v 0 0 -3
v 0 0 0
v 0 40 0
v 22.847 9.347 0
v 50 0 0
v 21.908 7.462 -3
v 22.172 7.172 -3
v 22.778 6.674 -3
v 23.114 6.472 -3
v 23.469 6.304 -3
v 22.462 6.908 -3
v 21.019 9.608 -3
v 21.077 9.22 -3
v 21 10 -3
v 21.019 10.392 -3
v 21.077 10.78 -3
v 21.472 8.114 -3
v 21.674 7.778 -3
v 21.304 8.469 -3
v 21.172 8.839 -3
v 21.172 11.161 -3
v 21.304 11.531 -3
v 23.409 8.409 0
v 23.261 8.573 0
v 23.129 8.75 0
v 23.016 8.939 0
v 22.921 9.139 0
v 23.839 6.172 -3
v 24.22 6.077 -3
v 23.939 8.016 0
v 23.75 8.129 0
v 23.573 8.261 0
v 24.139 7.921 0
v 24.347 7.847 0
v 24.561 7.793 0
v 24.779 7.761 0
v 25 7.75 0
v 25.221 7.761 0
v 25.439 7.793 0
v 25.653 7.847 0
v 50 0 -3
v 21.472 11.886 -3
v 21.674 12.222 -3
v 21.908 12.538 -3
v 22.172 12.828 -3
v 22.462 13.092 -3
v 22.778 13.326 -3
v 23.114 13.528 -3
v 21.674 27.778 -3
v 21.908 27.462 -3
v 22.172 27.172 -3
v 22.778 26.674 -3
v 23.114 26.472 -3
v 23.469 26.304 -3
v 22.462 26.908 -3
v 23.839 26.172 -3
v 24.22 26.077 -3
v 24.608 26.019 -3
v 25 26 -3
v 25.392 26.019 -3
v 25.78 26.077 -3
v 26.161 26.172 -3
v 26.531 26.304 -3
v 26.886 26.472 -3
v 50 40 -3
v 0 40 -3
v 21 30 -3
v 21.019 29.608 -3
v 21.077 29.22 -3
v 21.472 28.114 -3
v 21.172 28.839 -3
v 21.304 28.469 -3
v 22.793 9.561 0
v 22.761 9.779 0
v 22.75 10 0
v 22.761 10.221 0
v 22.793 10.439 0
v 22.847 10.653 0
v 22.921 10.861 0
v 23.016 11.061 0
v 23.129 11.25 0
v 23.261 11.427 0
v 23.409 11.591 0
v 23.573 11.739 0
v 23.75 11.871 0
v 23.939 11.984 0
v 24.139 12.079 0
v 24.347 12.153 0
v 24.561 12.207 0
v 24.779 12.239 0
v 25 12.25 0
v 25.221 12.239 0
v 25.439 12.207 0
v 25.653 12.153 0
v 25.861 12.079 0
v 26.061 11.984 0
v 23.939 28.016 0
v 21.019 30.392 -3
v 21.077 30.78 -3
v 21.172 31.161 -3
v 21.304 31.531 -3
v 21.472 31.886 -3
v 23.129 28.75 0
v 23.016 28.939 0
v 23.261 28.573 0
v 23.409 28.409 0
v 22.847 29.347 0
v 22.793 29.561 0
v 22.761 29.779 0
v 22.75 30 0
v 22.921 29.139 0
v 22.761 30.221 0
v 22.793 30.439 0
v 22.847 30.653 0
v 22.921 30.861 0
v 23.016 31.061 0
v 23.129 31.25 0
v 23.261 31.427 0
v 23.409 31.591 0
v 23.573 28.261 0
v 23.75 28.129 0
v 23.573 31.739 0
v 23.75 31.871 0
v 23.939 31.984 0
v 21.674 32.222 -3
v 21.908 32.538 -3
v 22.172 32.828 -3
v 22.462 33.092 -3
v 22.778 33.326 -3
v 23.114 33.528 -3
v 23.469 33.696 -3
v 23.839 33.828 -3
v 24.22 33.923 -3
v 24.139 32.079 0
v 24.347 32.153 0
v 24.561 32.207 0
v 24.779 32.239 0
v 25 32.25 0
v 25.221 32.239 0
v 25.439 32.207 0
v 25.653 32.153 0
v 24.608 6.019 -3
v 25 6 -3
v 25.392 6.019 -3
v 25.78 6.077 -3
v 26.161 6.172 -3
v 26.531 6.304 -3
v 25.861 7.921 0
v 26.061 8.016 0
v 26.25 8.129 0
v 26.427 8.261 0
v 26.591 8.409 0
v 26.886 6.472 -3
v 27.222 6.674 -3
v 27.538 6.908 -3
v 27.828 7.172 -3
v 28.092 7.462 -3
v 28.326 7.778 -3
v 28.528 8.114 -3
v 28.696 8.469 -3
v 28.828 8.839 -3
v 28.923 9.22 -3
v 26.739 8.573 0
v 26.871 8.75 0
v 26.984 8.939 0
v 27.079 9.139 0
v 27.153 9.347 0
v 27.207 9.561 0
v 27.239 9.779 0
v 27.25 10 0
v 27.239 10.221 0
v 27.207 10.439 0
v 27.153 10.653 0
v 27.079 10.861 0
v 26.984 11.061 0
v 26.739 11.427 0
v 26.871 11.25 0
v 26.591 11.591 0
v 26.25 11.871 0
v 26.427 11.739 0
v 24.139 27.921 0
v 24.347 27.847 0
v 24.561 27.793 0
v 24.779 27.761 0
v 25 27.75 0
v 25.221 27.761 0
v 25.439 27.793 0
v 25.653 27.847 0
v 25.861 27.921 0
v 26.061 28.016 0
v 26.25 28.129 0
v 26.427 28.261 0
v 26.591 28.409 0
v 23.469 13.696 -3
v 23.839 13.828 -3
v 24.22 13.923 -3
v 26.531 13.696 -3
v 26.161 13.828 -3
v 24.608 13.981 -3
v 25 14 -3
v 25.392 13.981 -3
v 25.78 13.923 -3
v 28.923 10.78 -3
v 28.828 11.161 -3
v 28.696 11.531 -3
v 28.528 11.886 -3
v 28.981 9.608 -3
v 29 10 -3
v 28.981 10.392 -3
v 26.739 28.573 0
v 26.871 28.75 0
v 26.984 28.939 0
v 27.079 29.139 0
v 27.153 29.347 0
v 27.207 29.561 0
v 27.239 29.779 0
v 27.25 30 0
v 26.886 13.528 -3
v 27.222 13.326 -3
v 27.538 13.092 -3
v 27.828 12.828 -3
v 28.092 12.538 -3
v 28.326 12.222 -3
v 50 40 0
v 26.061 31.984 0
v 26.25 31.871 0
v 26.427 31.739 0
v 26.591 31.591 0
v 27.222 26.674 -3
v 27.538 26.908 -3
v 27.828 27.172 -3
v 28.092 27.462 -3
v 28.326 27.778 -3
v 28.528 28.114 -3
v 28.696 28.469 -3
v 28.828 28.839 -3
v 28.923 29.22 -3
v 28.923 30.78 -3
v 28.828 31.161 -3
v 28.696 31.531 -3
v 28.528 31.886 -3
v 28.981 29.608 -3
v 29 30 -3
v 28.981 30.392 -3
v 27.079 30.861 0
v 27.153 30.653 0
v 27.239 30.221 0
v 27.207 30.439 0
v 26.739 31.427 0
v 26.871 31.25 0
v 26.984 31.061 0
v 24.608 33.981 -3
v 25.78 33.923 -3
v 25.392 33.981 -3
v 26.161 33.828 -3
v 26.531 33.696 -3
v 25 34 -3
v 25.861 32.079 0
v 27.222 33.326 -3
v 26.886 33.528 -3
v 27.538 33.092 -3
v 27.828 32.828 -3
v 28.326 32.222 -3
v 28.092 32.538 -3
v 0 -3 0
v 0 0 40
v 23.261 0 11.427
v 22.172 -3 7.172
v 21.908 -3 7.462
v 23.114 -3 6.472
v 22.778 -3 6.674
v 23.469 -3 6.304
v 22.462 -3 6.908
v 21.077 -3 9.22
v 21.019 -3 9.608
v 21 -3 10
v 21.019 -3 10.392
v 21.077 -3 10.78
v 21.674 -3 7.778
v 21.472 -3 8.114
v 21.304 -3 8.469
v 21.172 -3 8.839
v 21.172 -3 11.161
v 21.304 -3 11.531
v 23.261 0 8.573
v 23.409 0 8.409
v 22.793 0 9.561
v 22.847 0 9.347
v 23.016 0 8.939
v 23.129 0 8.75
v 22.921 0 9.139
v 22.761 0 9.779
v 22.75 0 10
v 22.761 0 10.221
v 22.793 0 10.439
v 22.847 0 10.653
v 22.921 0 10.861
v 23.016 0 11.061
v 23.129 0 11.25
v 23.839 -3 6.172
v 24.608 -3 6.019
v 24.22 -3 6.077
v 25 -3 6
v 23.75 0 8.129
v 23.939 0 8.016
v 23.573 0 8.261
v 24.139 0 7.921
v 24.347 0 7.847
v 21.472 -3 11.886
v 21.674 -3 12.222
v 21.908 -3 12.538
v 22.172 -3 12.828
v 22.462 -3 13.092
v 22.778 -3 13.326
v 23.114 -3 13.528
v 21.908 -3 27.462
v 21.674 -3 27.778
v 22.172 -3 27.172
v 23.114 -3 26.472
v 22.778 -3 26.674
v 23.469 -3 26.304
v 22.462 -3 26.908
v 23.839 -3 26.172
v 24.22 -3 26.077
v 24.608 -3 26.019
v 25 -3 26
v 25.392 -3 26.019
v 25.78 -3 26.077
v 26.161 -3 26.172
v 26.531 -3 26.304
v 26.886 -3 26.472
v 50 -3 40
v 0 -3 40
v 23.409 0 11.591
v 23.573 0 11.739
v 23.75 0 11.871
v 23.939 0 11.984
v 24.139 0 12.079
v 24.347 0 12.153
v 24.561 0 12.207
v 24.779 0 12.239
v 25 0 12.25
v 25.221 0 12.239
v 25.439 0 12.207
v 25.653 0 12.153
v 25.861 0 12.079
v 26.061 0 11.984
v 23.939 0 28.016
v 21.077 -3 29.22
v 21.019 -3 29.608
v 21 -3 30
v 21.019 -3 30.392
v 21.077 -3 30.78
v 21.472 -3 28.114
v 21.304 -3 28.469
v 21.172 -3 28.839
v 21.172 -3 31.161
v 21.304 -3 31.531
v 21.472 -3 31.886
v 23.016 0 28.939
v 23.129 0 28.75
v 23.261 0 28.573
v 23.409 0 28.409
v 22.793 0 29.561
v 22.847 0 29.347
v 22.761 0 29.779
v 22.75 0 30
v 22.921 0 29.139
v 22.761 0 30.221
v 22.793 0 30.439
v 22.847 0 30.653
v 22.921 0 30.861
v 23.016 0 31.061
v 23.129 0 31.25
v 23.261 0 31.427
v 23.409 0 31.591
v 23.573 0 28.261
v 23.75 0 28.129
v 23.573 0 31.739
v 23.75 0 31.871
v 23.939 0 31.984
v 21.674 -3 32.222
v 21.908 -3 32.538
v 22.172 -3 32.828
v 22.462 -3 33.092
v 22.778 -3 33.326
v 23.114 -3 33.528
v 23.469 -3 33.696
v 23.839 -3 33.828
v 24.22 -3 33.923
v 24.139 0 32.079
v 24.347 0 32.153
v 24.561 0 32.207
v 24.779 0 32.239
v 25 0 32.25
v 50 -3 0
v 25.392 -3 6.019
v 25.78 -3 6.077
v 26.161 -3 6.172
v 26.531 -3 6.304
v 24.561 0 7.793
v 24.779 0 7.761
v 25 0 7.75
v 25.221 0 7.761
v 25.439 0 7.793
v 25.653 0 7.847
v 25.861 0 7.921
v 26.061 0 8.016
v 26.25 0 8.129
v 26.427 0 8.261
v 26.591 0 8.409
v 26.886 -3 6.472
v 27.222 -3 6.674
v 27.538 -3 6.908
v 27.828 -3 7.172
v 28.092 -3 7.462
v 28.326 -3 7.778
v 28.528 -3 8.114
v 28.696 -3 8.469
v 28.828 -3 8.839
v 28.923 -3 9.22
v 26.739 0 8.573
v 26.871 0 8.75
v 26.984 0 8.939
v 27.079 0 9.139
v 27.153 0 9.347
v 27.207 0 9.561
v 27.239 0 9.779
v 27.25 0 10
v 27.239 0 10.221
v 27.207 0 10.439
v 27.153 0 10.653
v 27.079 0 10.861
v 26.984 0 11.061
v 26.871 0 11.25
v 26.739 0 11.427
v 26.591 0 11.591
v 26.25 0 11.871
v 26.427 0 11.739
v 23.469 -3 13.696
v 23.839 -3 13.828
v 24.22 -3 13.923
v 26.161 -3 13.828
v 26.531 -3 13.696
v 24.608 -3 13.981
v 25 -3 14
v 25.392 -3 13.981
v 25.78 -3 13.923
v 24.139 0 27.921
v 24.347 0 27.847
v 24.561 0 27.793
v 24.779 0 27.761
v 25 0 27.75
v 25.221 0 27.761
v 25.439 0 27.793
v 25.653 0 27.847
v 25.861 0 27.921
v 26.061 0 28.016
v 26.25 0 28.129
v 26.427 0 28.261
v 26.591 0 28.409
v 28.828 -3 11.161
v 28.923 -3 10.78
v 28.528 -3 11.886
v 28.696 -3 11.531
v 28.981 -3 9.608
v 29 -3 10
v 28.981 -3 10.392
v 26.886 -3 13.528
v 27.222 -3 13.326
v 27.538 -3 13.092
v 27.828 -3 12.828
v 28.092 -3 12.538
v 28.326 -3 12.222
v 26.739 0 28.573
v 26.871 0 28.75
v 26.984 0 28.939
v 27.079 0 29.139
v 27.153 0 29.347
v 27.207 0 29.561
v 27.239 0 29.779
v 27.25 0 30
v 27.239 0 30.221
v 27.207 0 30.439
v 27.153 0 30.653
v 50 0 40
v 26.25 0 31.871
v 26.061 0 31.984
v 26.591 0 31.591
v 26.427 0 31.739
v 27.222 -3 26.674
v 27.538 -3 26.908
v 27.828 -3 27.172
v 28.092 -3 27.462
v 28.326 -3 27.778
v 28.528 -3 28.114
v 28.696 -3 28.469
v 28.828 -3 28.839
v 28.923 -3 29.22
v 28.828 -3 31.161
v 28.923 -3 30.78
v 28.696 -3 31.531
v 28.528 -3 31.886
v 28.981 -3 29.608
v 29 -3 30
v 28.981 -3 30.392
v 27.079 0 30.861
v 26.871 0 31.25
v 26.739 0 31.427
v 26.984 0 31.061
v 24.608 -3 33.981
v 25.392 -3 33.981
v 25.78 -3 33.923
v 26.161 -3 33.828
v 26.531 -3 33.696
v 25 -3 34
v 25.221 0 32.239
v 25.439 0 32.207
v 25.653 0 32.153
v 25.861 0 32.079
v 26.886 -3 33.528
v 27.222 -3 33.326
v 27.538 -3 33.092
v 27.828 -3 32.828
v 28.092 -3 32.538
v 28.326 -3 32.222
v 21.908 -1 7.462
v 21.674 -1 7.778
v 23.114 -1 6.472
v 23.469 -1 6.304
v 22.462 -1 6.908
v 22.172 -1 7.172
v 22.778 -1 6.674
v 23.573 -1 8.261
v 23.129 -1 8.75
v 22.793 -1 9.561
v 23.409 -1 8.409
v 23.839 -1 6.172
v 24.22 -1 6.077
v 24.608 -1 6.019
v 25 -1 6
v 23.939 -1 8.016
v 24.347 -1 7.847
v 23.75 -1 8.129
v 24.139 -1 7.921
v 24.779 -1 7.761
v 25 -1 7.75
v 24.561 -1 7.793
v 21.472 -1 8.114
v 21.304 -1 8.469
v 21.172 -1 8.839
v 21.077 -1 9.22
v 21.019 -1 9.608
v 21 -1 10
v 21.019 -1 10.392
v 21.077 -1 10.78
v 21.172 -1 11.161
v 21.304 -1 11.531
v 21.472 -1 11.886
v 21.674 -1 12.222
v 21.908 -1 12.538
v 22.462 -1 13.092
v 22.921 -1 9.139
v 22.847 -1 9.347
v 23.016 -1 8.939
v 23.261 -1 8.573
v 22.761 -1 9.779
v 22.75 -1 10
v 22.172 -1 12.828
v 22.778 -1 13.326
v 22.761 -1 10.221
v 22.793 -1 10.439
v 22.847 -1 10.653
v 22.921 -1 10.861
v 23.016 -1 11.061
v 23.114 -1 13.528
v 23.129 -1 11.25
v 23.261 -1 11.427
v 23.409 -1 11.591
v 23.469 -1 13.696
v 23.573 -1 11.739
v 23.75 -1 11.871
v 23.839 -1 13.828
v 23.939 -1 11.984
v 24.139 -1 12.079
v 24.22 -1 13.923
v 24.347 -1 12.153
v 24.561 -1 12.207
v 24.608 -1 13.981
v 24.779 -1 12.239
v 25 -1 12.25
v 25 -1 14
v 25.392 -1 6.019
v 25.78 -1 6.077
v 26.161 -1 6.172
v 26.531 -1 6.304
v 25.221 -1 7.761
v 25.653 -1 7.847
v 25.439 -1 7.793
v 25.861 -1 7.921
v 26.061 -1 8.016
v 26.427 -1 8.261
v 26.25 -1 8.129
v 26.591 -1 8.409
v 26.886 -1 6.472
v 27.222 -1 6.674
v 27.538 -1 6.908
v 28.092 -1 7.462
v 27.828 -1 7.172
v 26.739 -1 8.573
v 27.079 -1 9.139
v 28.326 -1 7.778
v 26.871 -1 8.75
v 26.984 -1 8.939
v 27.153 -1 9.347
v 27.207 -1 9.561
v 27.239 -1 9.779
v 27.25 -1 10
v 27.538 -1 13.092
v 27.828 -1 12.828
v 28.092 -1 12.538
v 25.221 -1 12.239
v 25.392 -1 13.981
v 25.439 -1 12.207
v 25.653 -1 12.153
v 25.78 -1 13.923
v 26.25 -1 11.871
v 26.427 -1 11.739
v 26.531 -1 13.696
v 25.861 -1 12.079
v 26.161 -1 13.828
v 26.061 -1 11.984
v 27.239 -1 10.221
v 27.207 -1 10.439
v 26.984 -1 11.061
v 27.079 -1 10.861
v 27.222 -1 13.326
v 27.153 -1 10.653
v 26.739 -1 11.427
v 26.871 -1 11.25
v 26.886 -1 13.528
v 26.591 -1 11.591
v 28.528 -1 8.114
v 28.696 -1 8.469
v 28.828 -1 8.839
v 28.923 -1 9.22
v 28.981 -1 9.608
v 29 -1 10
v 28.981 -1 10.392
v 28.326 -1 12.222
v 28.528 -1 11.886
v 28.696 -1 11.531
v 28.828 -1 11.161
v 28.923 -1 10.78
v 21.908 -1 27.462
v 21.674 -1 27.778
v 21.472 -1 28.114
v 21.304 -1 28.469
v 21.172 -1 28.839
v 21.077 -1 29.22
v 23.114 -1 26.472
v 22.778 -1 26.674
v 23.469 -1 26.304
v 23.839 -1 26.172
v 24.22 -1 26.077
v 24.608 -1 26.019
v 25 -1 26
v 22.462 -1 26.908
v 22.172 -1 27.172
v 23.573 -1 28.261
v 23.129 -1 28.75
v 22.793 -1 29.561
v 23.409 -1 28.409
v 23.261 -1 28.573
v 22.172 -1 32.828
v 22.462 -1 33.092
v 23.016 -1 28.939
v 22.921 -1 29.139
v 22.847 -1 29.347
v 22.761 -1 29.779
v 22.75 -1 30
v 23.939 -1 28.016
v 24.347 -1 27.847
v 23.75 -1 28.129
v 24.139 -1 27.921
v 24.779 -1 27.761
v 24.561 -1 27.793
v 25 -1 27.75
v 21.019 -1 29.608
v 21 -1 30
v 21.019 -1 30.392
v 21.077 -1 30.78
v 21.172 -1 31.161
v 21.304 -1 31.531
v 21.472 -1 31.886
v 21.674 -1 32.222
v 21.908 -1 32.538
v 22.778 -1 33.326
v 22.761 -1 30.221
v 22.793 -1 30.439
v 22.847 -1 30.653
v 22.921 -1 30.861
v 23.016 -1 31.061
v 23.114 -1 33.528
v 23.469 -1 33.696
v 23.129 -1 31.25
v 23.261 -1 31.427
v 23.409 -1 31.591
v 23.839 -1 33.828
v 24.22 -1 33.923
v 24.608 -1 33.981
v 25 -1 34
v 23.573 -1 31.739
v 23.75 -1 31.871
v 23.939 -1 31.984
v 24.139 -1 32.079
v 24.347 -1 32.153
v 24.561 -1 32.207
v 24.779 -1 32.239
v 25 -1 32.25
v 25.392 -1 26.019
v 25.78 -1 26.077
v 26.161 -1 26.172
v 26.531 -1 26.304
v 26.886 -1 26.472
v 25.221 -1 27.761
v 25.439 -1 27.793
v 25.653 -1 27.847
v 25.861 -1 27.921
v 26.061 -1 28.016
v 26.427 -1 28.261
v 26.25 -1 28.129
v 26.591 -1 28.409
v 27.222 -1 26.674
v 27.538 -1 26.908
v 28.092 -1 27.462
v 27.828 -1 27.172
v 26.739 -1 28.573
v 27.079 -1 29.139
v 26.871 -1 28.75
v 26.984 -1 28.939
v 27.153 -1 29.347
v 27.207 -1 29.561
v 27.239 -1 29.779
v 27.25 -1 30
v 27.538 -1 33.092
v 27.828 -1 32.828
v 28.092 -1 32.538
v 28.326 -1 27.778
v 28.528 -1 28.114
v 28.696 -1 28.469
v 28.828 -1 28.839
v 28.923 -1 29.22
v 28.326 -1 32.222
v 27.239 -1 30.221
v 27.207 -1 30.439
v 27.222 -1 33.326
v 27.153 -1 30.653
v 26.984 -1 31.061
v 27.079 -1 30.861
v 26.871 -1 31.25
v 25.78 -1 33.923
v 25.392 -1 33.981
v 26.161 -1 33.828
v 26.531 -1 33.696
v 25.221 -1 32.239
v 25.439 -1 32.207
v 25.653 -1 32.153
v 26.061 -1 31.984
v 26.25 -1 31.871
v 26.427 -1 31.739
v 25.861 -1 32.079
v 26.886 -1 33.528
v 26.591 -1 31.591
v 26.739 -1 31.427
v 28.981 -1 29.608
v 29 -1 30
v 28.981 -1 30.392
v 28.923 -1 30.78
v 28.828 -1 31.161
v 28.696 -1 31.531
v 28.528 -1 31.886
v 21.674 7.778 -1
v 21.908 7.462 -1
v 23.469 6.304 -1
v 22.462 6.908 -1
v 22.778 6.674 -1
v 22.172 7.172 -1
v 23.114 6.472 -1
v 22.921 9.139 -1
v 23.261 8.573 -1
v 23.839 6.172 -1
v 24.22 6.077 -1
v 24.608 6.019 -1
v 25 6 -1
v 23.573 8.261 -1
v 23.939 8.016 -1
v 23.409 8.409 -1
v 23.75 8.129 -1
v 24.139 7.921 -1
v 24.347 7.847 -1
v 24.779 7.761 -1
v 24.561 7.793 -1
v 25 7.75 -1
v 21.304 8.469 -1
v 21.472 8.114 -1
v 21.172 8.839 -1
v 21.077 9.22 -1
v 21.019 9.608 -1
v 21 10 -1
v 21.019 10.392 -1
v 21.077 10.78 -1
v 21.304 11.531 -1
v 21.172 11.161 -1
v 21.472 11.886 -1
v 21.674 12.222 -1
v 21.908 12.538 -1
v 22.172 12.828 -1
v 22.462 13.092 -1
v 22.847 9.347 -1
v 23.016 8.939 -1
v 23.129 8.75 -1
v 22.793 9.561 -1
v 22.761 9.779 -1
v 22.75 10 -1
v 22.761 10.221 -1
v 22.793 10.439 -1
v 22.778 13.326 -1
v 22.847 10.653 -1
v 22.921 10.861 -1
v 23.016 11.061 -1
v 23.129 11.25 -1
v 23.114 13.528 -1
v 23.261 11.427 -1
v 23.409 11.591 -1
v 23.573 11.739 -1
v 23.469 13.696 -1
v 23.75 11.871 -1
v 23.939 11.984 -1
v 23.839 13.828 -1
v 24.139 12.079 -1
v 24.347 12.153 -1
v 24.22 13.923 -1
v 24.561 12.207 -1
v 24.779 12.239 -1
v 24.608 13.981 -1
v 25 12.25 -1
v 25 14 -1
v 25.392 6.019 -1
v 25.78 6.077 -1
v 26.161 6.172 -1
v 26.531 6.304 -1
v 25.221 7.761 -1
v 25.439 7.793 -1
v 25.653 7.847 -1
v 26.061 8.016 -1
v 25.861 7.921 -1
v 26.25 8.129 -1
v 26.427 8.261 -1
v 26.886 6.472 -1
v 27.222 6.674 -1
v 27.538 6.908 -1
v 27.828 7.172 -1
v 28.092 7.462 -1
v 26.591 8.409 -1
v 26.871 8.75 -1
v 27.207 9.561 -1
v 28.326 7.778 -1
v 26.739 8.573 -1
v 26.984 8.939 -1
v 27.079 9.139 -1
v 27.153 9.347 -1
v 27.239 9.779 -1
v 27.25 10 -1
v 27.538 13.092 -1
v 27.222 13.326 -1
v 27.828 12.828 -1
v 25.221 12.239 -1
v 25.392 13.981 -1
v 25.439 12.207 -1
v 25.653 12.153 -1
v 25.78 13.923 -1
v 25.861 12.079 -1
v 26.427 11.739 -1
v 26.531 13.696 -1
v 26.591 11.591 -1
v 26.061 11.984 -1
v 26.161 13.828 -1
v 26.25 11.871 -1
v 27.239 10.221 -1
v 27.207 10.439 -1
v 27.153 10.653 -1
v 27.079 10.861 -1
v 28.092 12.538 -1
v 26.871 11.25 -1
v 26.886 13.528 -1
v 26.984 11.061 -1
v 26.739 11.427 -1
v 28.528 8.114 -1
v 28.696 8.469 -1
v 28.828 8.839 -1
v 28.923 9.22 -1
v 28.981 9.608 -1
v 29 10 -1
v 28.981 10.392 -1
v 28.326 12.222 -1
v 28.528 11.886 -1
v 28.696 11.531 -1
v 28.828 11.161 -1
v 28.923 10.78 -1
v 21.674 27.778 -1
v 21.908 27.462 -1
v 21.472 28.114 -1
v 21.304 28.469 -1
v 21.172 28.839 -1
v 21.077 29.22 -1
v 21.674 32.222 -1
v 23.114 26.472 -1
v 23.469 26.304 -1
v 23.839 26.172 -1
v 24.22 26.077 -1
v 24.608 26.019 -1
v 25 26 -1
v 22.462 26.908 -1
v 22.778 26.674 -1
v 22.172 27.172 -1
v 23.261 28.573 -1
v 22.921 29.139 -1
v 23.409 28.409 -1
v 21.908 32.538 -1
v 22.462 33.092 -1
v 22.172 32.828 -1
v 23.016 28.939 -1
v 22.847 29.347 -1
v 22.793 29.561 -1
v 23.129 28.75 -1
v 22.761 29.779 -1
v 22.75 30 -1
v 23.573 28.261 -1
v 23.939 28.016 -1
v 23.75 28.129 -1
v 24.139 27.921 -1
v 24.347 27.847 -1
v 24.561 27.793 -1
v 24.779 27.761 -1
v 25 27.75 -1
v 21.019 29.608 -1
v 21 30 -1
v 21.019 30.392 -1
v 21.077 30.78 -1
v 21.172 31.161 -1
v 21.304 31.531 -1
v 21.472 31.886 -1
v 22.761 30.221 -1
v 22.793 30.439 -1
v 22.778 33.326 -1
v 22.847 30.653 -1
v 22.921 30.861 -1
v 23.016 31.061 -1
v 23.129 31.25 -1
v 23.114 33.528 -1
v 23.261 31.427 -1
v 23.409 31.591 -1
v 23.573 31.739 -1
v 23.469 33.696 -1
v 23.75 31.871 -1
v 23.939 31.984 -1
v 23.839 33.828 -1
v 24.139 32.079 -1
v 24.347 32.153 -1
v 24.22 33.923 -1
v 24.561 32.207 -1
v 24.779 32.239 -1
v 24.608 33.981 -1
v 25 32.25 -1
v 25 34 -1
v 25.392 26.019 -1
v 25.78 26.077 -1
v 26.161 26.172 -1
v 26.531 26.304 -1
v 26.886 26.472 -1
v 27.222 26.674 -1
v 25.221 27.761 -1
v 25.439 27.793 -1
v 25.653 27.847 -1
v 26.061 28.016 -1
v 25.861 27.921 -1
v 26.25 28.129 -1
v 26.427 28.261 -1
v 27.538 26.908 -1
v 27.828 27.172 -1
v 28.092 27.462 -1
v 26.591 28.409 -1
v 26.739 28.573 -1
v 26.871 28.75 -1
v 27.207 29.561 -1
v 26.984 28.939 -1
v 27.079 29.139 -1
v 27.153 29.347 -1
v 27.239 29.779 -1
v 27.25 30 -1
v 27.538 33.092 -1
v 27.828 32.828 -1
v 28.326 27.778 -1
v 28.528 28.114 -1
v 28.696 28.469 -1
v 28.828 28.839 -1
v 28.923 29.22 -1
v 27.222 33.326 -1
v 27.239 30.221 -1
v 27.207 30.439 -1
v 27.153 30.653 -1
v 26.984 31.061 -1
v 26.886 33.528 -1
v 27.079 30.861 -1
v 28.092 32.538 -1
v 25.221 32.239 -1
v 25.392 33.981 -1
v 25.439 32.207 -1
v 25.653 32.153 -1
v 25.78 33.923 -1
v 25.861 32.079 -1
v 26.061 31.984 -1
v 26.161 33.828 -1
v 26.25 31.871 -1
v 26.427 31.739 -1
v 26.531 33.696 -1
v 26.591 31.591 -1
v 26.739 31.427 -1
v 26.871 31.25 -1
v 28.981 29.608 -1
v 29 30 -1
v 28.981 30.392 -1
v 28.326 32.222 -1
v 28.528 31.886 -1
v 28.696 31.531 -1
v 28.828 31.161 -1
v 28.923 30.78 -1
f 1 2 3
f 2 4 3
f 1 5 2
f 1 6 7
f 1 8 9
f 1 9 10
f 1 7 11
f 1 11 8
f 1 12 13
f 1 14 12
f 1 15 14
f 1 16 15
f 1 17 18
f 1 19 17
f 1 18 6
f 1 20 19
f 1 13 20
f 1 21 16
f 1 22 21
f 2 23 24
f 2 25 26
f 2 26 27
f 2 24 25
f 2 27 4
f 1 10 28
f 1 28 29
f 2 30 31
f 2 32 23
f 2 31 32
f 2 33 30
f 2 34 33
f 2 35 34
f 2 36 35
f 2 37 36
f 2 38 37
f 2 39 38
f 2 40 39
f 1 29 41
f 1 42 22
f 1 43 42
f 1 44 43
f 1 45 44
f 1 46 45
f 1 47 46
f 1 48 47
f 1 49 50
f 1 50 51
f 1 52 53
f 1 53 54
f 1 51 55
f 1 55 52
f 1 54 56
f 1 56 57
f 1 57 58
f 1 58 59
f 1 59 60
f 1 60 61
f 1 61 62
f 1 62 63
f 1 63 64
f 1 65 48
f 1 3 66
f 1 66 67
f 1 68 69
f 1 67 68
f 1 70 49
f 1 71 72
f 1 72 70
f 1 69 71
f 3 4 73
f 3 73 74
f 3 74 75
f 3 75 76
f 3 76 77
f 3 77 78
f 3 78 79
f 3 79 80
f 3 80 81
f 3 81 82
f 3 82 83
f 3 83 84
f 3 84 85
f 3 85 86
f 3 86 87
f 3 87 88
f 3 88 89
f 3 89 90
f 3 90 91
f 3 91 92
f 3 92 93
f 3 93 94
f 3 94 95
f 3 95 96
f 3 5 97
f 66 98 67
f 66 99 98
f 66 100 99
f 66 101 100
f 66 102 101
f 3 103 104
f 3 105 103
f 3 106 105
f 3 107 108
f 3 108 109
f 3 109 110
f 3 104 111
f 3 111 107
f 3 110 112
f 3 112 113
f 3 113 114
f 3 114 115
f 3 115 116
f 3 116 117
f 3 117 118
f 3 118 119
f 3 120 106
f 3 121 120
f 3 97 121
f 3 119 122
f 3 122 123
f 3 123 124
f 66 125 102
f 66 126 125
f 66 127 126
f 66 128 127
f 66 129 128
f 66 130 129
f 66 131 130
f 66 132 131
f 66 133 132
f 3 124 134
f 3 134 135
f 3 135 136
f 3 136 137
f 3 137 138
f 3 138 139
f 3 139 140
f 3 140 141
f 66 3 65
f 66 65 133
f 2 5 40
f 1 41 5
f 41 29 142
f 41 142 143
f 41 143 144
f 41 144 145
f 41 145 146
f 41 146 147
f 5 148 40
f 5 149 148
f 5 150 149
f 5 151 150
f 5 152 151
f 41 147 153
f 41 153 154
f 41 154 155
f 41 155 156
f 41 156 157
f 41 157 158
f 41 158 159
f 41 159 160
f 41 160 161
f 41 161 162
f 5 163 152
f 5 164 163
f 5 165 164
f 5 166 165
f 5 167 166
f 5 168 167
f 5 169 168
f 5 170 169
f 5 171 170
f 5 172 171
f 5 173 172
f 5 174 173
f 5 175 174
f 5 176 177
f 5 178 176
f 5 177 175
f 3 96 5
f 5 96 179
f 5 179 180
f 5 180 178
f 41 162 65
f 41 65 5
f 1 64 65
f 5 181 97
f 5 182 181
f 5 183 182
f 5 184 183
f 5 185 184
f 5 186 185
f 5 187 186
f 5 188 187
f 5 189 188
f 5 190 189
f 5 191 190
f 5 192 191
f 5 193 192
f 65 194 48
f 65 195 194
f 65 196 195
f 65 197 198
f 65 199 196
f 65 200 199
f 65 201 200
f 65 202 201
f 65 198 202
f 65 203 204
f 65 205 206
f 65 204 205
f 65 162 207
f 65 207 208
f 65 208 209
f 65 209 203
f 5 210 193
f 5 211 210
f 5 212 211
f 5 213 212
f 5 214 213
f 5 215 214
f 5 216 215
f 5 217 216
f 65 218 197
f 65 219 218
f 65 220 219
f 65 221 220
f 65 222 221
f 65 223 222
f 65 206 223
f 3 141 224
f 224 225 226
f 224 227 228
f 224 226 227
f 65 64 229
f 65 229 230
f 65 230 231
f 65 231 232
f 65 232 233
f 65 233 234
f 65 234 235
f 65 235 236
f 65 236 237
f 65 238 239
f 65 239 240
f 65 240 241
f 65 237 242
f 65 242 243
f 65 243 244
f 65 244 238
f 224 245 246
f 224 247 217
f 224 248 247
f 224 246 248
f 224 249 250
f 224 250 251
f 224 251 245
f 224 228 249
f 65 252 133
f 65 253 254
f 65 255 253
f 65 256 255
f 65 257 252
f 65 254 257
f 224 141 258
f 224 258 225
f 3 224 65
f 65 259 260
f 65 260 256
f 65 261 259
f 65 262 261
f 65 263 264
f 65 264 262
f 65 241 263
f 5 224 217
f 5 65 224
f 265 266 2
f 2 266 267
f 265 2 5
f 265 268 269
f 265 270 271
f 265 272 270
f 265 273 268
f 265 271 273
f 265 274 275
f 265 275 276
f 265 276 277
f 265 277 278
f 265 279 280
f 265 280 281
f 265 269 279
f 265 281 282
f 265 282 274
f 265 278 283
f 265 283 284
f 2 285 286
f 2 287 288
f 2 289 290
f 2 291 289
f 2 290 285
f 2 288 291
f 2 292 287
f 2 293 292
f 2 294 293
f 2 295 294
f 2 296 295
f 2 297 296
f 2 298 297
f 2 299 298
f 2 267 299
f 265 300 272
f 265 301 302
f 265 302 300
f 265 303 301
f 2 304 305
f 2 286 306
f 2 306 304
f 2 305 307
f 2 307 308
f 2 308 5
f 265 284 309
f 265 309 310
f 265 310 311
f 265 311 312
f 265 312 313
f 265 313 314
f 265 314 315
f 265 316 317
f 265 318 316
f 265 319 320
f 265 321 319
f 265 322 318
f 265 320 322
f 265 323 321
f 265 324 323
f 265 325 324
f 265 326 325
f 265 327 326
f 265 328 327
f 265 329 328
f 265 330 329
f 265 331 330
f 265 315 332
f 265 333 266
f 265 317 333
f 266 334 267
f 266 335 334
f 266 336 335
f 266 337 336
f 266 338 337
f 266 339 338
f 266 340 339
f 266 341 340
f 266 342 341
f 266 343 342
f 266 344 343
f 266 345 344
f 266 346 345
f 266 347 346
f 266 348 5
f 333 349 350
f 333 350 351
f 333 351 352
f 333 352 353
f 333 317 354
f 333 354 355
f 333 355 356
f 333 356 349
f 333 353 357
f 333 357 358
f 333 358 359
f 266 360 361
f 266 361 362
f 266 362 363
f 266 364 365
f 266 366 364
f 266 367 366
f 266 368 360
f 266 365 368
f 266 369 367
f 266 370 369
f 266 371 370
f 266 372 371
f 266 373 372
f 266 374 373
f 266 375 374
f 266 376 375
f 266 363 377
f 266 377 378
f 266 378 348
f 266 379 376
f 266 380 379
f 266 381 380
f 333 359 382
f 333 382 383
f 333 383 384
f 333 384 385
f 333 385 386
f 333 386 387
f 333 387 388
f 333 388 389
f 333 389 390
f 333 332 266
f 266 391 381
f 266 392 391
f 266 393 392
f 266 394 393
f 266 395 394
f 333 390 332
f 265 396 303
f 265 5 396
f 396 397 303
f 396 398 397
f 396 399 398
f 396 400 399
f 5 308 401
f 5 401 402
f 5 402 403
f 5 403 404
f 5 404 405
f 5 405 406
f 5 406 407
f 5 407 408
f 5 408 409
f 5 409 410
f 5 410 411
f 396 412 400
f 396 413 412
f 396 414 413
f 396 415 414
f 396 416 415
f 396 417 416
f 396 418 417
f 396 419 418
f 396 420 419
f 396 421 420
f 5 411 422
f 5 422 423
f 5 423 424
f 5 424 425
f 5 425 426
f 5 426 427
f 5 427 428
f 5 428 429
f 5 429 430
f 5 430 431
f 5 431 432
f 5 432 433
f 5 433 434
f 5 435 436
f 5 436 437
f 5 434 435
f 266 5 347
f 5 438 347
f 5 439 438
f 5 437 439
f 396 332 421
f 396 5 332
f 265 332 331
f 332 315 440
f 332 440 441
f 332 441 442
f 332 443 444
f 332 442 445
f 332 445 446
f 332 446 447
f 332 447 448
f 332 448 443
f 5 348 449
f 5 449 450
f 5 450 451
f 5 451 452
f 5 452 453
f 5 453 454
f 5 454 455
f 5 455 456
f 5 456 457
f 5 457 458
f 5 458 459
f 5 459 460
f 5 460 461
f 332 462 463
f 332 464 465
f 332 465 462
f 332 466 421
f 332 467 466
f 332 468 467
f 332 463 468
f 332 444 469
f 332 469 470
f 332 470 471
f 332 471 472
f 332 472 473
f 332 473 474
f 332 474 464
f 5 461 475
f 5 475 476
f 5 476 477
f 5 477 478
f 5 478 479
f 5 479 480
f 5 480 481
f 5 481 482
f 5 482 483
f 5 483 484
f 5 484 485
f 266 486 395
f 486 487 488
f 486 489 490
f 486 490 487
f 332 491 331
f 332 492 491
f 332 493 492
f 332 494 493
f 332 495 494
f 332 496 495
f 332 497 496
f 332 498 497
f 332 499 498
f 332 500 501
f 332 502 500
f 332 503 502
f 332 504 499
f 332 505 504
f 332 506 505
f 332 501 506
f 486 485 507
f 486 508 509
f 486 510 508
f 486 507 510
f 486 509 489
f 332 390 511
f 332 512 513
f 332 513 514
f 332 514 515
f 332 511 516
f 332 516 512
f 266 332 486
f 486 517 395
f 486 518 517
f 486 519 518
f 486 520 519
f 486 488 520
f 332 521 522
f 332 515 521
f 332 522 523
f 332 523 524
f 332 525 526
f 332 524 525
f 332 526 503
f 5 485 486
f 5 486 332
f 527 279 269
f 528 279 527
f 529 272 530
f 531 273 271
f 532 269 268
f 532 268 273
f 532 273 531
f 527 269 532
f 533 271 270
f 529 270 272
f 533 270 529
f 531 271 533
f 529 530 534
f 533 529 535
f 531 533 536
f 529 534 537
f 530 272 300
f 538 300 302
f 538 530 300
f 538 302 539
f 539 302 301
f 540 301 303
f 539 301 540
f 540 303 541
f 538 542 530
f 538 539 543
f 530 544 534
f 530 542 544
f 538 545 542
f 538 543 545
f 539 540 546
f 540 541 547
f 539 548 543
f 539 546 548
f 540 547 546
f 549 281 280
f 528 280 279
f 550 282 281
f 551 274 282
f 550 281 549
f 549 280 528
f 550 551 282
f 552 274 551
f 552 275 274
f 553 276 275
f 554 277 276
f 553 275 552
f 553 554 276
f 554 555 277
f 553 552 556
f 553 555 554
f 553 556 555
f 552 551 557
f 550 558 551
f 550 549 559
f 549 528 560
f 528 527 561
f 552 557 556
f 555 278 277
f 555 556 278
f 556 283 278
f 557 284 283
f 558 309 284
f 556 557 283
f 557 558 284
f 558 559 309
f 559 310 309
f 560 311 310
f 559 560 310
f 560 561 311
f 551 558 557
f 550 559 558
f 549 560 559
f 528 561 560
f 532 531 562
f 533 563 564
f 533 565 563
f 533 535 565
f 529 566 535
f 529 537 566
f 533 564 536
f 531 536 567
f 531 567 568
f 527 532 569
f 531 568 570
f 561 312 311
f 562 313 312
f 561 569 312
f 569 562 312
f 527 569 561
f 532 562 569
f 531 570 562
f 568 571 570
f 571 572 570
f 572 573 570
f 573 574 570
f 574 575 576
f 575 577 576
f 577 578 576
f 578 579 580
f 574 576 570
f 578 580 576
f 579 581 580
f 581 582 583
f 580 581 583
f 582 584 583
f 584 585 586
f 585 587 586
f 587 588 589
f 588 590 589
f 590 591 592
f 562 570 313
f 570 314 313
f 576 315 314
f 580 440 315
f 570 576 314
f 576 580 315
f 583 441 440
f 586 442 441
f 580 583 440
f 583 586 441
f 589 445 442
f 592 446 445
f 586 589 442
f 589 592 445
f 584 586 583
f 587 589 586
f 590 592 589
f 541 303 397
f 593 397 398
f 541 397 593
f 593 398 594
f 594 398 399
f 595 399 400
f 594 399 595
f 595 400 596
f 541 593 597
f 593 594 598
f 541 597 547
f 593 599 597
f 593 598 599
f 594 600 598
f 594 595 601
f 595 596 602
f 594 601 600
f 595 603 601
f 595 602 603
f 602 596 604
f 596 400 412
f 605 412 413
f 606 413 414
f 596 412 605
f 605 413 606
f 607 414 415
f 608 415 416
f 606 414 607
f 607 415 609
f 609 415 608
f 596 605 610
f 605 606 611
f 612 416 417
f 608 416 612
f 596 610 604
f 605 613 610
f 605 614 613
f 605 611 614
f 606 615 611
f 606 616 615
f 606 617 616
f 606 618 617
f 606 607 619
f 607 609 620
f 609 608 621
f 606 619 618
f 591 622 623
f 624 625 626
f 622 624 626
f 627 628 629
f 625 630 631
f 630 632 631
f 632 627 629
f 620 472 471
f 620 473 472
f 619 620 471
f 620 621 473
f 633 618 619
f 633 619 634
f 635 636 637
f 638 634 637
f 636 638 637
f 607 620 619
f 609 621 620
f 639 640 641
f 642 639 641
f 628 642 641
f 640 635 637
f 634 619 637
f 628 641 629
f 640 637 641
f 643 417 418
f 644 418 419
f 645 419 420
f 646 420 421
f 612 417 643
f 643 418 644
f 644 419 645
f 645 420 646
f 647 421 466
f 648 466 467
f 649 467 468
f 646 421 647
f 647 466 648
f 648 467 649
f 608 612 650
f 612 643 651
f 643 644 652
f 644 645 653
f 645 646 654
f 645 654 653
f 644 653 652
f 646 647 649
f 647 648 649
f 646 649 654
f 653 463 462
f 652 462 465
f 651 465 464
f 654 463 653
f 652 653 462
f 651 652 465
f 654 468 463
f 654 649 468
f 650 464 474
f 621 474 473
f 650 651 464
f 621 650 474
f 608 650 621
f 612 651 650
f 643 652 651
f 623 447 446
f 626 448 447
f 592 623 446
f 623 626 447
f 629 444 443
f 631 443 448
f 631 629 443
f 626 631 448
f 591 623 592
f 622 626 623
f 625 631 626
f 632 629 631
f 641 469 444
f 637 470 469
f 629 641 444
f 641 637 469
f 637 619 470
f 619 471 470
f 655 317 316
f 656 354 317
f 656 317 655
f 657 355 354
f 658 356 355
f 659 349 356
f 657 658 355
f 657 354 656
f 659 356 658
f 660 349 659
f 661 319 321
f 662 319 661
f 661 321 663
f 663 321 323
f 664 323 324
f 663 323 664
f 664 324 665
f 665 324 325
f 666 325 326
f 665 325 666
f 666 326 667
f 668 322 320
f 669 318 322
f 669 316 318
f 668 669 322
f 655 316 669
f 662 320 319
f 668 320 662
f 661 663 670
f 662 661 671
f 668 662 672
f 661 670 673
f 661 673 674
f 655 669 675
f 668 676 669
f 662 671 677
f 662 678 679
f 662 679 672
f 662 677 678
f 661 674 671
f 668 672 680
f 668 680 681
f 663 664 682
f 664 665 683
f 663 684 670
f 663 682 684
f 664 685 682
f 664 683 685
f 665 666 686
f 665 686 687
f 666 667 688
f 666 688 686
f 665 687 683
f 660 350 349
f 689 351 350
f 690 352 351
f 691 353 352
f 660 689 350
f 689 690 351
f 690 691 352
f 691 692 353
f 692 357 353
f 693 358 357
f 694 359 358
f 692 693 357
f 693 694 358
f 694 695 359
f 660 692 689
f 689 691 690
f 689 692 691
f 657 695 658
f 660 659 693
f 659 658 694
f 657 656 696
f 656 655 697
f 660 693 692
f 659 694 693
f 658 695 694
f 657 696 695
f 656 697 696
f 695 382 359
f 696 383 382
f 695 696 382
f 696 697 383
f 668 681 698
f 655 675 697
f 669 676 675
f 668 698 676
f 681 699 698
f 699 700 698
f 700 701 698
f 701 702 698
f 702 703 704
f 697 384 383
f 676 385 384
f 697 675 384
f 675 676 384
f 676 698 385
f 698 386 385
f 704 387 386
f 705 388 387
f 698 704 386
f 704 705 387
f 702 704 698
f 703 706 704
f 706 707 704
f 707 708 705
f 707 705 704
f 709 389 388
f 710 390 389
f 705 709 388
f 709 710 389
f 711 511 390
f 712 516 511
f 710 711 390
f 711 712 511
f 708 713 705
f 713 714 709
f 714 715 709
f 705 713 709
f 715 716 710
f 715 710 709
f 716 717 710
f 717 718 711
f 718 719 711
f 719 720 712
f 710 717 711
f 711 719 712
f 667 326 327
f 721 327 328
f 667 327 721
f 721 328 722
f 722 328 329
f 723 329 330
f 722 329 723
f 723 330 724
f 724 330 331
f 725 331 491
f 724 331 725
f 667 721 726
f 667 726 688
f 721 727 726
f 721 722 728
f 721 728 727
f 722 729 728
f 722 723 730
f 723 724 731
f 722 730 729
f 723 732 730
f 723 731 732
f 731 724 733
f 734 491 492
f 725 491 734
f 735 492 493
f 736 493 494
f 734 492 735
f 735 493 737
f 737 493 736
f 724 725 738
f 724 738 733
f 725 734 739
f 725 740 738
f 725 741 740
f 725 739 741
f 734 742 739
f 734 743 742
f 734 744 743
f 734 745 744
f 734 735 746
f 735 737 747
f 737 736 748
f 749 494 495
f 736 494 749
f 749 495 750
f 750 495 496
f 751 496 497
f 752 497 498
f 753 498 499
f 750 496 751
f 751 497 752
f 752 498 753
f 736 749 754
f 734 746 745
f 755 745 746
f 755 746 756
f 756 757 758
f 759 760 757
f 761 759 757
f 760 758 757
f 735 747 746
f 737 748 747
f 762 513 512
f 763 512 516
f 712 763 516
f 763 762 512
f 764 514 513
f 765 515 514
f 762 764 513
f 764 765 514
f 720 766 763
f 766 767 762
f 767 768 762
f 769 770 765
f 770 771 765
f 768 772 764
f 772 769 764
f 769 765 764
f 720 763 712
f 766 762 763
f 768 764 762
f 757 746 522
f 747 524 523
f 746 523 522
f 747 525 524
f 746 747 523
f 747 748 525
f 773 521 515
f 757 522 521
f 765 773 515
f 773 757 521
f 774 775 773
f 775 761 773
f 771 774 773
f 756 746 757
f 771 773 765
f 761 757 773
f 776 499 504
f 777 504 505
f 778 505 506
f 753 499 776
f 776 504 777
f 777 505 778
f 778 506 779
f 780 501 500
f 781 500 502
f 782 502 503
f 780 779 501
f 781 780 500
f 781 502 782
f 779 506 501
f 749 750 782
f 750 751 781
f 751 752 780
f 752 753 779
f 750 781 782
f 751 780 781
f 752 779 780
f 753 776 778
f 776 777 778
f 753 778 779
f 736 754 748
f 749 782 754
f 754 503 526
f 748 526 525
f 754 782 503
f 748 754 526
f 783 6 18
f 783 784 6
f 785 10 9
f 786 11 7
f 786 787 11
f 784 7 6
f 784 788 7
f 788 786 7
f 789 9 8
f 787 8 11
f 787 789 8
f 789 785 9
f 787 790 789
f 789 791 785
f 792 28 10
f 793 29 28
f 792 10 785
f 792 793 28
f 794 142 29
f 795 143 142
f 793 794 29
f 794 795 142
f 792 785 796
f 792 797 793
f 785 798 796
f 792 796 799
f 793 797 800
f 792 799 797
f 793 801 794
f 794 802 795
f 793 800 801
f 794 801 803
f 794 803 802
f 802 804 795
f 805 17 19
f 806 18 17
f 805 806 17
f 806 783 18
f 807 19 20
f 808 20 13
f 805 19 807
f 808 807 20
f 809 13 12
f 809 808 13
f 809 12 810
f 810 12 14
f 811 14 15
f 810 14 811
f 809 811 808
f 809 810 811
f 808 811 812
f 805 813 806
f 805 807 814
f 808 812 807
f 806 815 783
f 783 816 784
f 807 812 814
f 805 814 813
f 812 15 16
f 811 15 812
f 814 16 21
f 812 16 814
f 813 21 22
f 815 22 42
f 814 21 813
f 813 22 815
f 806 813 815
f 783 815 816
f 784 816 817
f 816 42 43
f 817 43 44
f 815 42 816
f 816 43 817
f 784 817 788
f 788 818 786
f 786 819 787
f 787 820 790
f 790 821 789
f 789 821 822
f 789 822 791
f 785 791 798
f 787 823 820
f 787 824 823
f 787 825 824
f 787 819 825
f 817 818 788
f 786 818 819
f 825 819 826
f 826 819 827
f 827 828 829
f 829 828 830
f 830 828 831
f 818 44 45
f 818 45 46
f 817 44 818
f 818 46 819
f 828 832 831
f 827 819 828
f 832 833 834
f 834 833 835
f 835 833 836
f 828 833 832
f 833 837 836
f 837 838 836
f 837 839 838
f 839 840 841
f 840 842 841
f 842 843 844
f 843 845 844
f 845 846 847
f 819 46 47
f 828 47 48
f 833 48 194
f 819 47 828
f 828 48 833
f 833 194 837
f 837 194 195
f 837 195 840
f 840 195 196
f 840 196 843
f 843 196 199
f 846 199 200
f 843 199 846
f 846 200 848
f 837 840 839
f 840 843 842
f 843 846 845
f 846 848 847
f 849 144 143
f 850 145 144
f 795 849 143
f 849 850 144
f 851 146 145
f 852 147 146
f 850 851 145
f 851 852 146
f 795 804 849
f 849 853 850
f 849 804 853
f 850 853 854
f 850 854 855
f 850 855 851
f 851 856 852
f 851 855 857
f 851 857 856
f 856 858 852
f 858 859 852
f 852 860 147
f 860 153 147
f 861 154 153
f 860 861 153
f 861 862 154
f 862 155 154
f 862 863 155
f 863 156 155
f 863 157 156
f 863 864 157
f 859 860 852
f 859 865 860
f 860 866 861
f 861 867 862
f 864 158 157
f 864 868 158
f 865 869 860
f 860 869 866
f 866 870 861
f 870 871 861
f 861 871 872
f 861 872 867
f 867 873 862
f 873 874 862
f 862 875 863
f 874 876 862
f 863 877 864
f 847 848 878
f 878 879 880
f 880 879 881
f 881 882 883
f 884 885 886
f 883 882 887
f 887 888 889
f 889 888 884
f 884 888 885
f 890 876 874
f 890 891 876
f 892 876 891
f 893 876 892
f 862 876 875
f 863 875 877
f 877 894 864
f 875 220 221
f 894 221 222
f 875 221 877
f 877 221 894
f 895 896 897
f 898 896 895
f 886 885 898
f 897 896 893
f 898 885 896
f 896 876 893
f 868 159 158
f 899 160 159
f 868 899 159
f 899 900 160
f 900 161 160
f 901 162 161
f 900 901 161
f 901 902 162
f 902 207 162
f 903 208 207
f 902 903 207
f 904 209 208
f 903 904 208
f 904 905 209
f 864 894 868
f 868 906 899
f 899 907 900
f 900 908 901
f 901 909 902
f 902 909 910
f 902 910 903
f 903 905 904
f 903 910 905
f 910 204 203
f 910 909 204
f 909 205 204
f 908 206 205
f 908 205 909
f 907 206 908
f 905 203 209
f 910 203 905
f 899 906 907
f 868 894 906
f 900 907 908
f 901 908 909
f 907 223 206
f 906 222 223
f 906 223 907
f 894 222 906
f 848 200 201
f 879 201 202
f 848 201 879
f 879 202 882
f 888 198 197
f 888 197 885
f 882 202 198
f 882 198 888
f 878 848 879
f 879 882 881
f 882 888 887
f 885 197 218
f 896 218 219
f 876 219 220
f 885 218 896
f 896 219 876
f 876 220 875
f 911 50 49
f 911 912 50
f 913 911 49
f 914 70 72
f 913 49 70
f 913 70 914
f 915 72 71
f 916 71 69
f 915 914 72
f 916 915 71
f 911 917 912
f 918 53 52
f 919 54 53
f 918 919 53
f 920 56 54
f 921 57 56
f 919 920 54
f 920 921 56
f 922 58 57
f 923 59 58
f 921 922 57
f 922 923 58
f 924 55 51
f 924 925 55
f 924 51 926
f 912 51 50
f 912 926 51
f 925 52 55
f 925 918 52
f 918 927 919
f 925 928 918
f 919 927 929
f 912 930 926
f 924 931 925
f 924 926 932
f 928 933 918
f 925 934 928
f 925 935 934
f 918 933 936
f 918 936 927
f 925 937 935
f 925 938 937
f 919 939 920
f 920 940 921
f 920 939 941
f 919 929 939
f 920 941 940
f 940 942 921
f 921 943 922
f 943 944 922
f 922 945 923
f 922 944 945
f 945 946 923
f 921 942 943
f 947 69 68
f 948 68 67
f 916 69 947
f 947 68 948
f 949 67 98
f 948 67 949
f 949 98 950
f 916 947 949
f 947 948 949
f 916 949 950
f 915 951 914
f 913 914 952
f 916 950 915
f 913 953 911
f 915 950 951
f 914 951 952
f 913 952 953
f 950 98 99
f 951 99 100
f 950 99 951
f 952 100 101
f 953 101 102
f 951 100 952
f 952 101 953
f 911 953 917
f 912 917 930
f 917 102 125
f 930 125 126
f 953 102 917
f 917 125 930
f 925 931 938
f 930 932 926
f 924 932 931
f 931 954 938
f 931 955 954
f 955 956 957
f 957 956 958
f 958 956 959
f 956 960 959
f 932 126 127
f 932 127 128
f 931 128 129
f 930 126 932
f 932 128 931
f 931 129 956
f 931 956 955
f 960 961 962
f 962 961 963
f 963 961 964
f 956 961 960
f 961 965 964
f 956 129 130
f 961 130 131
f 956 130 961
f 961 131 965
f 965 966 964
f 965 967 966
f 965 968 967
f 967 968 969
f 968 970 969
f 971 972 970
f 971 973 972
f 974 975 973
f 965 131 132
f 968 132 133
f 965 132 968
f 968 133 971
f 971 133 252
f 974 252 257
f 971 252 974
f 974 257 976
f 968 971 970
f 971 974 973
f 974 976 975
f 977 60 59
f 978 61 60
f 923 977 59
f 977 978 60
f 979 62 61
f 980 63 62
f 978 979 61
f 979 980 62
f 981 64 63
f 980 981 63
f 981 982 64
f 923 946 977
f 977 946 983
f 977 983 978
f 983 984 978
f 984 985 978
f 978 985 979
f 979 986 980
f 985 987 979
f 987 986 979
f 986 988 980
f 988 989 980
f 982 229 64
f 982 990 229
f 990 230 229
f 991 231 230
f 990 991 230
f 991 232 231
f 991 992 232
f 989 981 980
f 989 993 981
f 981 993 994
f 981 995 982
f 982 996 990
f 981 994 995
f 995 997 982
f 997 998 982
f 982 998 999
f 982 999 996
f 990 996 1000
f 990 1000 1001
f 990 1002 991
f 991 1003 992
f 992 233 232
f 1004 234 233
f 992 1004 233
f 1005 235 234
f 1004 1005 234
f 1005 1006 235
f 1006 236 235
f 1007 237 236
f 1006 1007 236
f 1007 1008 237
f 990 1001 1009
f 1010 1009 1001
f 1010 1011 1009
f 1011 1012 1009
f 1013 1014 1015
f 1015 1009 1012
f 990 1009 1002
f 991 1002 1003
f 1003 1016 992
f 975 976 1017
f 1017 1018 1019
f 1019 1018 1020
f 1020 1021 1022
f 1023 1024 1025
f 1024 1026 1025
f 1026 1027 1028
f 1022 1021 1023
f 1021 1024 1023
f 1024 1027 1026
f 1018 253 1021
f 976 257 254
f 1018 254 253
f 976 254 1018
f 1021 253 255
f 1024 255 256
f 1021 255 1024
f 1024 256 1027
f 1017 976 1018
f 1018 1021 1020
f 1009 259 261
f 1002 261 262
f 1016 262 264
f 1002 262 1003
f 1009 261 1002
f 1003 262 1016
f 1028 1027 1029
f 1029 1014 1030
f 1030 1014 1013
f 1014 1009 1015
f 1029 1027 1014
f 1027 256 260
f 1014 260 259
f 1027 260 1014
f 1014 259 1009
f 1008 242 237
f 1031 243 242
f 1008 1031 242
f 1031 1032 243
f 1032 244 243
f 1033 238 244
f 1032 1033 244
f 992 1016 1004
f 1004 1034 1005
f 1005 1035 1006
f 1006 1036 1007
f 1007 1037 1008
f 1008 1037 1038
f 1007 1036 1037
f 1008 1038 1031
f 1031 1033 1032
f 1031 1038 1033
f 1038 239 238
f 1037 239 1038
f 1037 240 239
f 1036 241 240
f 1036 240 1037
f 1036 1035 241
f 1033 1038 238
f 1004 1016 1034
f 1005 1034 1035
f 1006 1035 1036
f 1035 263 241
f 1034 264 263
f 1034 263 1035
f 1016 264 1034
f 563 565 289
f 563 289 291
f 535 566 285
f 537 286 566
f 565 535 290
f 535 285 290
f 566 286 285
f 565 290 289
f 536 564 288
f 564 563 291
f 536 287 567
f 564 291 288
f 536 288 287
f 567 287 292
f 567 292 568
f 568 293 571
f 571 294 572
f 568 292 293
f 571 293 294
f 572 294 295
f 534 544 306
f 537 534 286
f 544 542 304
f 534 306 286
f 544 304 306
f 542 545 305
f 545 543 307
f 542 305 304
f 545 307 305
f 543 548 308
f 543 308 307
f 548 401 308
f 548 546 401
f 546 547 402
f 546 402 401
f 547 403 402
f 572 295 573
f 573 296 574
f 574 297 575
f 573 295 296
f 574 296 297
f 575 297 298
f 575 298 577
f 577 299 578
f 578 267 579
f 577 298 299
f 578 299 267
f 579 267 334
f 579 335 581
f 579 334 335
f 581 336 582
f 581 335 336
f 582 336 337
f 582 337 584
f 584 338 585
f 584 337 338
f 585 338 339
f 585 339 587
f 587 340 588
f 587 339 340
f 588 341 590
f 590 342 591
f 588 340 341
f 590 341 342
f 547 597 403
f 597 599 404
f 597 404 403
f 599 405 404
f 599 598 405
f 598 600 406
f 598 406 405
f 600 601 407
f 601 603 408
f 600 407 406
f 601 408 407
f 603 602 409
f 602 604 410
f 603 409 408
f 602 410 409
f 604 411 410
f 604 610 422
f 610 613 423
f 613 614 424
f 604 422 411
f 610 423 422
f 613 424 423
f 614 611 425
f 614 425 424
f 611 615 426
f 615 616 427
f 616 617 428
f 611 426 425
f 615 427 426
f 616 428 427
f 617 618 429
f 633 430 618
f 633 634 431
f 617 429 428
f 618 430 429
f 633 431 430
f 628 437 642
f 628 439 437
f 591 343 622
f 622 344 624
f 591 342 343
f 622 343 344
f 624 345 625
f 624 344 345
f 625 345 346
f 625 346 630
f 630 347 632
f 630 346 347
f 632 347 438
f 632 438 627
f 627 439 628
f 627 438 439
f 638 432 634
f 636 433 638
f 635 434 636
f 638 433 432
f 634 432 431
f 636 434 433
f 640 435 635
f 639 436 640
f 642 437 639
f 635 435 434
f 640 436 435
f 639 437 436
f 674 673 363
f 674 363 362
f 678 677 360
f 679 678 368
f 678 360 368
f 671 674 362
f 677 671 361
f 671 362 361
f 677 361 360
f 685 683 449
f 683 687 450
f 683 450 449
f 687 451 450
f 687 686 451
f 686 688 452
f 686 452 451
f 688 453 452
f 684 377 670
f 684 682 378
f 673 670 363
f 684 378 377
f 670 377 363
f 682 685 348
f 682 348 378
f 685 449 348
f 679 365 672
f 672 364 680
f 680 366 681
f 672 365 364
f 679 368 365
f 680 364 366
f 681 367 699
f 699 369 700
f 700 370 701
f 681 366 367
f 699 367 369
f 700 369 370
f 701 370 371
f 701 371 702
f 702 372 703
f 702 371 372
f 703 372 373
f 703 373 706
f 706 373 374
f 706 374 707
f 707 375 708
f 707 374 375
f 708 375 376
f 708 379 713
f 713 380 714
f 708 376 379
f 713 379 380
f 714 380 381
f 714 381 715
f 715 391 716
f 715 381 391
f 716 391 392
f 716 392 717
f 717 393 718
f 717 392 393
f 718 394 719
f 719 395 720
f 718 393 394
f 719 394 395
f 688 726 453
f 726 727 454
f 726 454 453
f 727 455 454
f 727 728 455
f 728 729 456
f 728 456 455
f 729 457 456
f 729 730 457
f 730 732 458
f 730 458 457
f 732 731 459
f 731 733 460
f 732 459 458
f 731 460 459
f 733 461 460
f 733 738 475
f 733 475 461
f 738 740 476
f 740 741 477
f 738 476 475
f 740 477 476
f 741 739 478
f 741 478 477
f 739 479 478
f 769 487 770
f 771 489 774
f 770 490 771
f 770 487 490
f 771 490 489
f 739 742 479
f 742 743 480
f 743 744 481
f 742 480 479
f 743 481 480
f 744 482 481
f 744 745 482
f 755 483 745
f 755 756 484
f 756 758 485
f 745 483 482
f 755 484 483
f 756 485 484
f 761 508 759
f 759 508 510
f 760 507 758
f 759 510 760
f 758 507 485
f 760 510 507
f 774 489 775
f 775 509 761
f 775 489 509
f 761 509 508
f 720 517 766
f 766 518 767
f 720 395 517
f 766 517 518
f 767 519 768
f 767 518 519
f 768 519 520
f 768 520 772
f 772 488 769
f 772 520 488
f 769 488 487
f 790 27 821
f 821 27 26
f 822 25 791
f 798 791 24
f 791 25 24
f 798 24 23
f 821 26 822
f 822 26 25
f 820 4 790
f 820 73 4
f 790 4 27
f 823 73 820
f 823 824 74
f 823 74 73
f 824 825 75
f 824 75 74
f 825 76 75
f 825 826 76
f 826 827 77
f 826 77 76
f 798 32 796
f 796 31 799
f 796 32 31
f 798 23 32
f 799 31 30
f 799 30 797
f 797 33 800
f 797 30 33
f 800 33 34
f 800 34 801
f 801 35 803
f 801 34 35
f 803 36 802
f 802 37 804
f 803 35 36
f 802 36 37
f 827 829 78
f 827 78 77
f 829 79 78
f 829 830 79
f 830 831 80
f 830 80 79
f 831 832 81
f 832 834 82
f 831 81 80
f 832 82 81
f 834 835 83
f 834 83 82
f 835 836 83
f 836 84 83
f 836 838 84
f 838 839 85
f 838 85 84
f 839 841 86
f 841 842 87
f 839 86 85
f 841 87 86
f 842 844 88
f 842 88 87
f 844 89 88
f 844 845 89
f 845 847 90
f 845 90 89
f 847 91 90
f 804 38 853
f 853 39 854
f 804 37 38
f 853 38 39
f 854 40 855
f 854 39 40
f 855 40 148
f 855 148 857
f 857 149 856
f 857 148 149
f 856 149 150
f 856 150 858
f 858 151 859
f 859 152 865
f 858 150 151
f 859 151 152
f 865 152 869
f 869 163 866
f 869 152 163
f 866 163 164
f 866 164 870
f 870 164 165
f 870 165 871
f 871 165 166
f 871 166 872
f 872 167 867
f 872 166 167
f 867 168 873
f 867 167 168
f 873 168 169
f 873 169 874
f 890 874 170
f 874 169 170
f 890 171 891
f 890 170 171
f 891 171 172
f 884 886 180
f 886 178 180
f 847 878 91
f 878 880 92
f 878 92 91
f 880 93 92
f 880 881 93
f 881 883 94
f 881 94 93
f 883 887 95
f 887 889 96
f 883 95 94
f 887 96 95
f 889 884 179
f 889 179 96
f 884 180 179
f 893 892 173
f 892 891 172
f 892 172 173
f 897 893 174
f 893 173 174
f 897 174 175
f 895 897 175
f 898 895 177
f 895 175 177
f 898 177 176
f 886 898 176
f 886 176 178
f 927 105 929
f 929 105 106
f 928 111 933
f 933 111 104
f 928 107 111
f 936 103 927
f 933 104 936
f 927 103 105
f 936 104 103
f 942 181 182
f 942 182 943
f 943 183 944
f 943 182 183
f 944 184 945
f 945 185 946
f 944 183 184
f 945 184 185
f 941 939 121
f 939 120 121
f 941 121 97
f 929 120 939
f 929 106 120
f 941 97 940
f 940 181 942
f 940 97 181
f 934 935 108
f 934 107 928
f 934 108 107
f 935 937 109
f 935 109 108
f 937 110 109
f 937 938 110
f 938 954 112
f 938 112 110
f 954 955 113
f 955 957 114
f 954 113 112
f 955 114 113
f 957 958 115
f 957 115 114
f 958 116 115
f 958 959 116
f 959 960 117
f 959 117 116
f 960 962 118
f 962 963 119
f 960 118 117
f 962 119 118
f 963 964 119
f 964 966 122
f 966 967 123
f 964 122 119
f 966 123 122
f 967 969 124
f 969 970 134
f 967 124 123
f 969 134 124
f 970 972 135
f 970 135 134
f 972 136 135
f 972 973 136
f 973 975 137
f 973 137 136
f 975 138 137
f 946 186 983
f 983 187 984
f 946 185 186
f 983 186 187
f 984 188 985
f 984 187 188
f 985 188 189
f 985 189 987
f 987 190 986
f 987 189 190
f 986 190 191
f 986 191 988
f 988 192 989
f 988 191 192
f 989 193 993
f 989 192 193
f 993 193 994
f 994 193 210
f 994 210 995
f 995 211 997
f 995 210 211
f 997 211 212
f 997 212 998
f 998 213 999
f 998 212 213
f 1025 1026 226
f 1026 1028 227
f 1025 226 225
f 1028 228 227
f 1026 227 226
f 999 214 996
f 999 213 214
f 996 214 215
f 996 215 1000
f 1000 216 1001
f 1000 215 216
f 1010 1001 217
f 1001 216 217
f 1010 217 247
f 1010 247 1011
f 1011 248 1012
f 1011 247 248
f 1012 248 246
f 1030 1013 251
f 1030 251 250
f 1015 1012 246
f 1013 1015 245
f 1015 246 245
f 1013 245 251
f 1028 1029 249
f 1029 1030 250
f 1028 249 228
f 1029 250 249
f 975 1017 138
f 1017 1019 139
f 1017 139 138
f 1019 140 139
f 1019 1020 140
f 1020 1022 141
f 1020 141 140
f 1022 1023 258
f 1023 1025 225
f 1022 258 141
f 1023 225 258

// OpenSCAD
$fn = 64;

// Dimensions
width = 50;
depth = 40;
height = 40;
thickness = 3;

// Hole specs
through_d = 4.5;
csink_d = 8;
csink_depth = 2;

// Hole positions
x1 = 10;
x2 = width - 10;
y_center = depth / 2;
z_center = height / 2;

module countersunk_hole_z(h=thickness) {
    union() {
        cylinder(h=csink_depth, d=csink_d);
        translate([0, 0, csink_depth])
            cylinder(h=h - csink_depth, d=through_d);
    }
}

module countersunk_hole_y(h=thickness) {
    rotate([-90, 0, 0])
        union() {
            cylinder(h=csink_depth, d=csink_d);
            translate([0, 0, csink_depth])
                cylinder(h=h - csink_depth, d=through_d);
        }
}

difference() {
    union() {
        // Horizontal flange: inner face at z=0, extends +Y, thickness toward -Z
        translate([0, 0, -thickness])
            cube([width, depth, thickness]);

        // Vertical flange: inner face at y=0, extends +Z, thickness toward -Y
        translate([0, -thickness, 0])
            cube([width, thickness, height]);
    }

    // Horizontal flange holes
    // centerline of the face, 10mm from front/back edges along Y
    // countersink on outer face (z = -thickness)
    for (yy = [10, depth - 10])
        translate([width / 2, yy, -thickness])
            countersunk_hole_z(thickness);

    // Vertical flange holes
    // centerline of the face, 10mm from bottom/top edges along Z
    // countersink on outer face (y = -thickness)
    for (zz = [10, height - 10])
        translate([width / 2, -thickness, zz])
            countersunk_hole_y(thickness);
}
